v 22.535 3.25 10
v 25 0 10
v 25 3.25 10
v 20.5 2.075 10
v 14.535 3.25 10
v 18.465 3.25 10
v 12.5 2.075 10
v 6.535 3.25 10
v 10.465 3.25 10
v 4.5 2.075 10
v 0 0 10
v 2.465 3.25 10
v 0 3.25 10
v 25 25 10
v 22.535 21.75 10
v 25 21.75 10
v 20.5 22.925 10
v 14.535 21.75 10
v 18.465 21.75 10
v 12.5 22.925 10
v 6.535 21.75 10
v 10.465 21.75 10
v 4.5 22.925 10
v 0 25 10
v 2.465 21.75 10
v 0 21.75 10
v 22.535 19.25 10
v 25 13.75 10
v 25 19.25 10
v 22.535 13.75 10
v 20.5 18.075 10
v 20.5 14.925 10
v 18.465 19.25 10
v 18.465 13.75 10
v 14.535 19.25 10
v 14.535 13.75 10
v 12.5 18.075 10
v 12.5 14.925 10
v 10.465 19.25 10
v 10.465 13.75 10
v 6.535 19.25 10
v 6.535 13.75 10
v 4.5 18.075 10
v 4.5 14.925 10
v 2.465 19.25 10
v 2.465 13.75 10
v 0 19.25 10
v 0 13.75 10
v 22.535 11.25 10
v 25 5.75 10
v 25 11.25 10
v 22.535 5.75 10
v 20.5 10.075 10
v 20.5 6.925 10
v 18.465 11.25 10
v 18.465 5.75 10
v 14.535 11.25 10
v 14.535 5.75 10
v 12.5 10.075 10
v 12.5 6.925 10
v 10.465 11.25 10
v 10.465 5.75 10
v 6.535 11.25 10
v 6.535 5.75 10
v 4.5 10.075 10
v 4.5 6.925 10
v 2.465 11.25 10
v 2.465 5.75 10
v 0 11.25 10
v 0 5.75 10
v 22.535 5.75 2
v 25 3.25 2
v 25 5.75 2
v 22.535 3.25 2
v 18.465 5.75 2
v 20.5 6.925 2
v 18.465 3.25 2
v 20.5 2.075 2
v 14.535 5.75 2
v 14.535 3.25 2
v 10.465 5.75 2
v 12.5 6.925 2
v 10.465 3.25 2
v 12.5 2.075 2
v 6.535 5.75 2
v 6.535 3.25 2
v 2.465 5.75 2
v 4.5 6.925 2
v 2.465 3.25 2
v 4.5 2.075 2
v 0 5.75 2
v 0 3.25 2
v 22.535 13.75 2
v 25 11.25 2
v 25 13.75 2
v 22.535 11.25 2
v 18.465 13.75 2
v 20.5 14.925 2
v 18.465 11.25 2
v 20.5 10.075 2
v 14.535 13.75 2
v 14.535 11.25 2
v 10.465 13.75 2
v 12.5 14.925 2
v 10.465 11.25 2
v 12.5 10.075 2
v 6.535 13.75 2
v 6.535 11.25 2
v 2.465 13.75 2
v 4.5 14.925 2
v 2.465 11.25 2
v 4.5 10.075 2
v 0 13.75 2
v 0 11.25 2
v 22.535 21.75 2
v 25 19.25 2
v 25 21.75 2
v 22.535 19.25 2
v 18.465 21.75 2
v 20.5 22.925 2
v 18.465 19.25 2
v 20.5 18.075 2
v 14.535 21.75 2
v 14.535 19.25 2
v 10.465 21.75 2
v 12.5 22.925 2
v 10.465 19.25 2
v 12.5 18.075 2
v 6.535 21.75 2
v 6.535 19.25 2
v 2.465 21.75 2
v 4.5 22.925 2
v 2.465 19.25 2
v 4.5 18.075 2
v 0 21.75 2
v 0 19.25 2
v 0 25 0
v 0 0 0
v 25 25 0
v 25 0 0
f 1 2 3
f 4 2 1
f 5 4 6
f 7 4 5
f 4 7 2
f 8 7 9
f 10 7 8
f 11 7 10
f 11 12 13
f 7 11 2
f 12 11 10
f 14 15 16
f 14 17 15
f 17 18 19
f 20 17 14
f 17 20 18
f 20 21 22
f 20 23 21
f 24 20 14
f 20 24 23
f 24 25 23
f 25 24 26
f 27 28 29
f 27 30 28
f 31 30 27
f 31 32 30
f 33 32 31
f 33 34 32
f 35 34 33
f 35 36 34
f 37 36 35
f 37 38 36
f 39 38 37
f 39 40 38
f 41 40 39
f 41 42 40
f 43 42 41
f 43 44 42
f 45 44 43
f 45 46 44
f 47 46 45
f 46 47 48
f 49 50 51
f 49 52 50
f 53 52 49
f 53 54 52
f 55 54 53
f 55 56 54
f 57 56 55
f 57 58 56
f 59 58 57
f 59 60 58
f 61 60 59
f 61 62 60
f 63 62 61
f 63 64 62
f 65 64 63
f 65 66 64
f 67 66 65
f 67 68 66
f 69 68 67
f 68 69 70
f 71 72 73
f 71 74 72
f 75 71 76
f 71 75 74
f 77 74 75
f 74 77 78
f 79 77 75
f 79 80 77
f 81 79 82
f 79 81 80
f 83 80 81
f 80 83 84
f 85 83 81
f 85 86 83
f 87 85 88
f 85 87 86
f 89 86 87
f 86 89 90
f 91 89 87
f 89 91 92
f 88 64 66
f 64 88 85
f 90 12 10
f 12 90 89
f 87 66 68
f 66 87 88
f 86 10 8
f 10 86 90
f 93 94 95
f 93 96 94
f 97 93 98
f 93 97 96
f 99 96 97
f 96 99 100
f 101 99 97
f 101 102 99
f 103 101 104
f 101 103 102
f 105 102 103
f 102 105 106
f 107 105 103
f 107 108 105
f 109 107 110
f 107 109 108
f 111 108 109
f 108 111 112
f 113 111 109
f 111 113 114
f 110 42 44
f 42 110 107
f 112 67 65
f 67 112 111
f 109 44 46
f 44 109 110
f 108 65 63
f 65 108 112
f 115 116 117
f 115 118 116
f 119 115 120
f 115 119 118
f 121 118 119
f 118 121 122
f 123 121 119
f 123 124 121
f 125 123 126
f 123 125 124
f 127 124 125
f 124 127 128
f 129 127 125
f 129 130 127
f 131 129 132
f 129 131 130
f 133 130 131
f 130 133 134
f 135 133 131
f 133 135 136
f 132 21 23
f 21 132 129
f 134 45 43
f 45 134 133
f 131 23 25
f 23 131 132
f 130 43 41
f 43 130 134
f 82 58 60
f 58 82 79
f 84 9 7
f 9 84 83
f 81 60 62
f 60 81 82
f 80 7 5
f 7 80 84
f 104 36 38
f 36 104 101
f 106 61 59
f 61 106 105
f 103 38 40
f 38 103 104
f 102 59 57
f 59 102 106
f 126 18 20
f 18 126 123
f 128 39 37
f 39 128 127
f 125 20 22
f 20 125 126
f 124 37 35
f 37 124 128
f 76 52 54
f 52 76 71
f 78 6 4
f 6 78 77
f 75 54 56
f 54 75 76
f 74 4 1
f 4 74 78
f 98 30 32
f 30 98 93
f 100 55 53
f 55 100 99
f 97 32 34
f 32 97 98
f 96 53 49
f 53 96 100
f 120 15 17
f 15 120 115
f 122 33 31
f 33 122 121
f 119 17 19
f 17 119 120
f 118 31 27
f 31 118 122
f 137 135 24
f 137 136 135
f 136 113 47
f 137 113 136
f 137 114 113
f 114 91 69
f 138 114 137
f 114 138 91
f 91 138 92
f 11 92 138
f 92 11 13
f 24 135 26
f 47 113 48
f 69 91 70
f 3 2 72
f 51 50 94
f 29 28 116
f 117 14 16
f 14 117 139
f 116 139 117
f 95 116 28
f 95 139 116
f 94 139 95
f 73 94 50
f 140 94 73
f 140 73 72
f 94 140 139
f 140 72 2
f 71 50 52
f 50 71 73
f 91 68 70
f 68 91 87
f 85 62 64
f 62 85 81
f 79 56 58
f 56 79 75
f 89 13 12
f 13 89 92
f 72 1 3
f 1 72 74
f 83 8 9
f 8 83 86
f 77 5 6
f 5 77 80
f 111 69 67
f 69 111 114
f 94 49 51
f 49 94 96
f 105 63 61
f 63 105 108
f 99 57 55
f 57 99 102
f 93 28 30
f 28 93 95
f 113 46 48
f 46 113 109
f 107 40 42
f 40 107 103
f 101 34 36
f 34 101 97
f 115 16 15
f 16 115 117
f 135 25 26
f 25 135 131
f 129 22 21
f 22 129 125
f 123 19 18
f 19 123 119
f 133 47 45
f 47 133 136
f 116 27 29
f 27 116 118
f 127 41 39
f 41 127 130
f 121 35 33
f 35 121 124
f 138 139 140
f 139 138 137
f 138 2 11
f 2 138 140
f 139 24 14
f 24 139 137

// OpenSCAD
// file: Hexagones.scad
//============================================================
// OpenSCAD
// Licence : LICENCE PUBLIQUE RIEN À BRANLER
// Licence : do What The Fuck you want to Public License
//============================================================
/*

	Usage:
	use <Hexagones.scad>;
	Pour créer des jeux, des têtes de vis...

*/


//------------------------------------------------------------
// Demo
//------------------------------------------------------------
$fn = 150 ;			// OpenSCAD Resolution
// hexagone de 1 pouce (1 inch) soit 25.4 mm
Hexagone(cle=25.4,h=1);

//------------------------------------------------------------
// Hexagone
// cle	écart, ex: clé de 12 alors cle=12
// h		hauteur
//------------------------------------------------------------
module Hexagone(cle,h)
{
	angle = 360/6;		// 6 pans
	cote = cle * cot(angle);
	echo(angle, cot(angle), cote);
	echo(acos(.6));

	union()
	{
		rotate([0,0,0])
			cube([cle,cote,h],center=true);
		rotate([0,0,angle])
			cube([cle,cote,h],center=true);
		rotate([0,0,2*angle])
			cube([cle,cote,h],center=true);
	}

// Vérification par un cercle de taille cle
//	#cylinder(r=cle/2,h=2*h,center=true);
//	%circle(r=cote,center=true);
//	#cube([cote,cote,1]);
}

//------------------------------------------------------------
// Fonction cotangente
// Permet d'avoir les bones dimensions
// utiliser $fn n'est pas bon
//------------------------------------------------------------
function cot(x)=1/tan(x);

//==EOF=======================================================
// main file
use <Hexagones.scad>;
$fn = 150 ;			// OpenSCAD Resolution
cornerwidth = 0;//1.1547;
ymovewidth = 4.5*2;//3.4641 * 1.5 * 2;
wallwidth = 1;
// hexagone de 1 pouce (1 inch) soit 25.4 mm
//Hexagone(cle=6,h=10)
//for (y = [-10:ymovewidth-cornerwidth:10]) {
//for (x = [-10:6-wallwidth:10]) {
//    translate ([x,y,5]) difference() {
//        Hexagone(cle=6,h=10);
//        translate([0,0,1]) cylinder(d=4.1,h=9, center = true);
//    }
//}
//}
//
//for (y = [-10:ymovewidth-cornerwidth:10]) {
//for (x = [-10:6-wallwidth:10]) {
//    translate ([x+2.5,y+4.5,5]) difference() {
//        Hexagone(cle=6,h=10);
//        translate([0,0,1]) cylinder(d=4.1,h=9, center = true);
//    }
//}
//}
difference(){
    cube([25,25,10]);


        for (y = [4.5:8:25]) {
                for (x = [4.5:8:25]){
            translate([x,y,6]) Hexagone(cle=4.2,h=8);
                }
            translate([12.5,y,6]) cube([25,2.5,8],center=true);
        }

    
    

}

        
